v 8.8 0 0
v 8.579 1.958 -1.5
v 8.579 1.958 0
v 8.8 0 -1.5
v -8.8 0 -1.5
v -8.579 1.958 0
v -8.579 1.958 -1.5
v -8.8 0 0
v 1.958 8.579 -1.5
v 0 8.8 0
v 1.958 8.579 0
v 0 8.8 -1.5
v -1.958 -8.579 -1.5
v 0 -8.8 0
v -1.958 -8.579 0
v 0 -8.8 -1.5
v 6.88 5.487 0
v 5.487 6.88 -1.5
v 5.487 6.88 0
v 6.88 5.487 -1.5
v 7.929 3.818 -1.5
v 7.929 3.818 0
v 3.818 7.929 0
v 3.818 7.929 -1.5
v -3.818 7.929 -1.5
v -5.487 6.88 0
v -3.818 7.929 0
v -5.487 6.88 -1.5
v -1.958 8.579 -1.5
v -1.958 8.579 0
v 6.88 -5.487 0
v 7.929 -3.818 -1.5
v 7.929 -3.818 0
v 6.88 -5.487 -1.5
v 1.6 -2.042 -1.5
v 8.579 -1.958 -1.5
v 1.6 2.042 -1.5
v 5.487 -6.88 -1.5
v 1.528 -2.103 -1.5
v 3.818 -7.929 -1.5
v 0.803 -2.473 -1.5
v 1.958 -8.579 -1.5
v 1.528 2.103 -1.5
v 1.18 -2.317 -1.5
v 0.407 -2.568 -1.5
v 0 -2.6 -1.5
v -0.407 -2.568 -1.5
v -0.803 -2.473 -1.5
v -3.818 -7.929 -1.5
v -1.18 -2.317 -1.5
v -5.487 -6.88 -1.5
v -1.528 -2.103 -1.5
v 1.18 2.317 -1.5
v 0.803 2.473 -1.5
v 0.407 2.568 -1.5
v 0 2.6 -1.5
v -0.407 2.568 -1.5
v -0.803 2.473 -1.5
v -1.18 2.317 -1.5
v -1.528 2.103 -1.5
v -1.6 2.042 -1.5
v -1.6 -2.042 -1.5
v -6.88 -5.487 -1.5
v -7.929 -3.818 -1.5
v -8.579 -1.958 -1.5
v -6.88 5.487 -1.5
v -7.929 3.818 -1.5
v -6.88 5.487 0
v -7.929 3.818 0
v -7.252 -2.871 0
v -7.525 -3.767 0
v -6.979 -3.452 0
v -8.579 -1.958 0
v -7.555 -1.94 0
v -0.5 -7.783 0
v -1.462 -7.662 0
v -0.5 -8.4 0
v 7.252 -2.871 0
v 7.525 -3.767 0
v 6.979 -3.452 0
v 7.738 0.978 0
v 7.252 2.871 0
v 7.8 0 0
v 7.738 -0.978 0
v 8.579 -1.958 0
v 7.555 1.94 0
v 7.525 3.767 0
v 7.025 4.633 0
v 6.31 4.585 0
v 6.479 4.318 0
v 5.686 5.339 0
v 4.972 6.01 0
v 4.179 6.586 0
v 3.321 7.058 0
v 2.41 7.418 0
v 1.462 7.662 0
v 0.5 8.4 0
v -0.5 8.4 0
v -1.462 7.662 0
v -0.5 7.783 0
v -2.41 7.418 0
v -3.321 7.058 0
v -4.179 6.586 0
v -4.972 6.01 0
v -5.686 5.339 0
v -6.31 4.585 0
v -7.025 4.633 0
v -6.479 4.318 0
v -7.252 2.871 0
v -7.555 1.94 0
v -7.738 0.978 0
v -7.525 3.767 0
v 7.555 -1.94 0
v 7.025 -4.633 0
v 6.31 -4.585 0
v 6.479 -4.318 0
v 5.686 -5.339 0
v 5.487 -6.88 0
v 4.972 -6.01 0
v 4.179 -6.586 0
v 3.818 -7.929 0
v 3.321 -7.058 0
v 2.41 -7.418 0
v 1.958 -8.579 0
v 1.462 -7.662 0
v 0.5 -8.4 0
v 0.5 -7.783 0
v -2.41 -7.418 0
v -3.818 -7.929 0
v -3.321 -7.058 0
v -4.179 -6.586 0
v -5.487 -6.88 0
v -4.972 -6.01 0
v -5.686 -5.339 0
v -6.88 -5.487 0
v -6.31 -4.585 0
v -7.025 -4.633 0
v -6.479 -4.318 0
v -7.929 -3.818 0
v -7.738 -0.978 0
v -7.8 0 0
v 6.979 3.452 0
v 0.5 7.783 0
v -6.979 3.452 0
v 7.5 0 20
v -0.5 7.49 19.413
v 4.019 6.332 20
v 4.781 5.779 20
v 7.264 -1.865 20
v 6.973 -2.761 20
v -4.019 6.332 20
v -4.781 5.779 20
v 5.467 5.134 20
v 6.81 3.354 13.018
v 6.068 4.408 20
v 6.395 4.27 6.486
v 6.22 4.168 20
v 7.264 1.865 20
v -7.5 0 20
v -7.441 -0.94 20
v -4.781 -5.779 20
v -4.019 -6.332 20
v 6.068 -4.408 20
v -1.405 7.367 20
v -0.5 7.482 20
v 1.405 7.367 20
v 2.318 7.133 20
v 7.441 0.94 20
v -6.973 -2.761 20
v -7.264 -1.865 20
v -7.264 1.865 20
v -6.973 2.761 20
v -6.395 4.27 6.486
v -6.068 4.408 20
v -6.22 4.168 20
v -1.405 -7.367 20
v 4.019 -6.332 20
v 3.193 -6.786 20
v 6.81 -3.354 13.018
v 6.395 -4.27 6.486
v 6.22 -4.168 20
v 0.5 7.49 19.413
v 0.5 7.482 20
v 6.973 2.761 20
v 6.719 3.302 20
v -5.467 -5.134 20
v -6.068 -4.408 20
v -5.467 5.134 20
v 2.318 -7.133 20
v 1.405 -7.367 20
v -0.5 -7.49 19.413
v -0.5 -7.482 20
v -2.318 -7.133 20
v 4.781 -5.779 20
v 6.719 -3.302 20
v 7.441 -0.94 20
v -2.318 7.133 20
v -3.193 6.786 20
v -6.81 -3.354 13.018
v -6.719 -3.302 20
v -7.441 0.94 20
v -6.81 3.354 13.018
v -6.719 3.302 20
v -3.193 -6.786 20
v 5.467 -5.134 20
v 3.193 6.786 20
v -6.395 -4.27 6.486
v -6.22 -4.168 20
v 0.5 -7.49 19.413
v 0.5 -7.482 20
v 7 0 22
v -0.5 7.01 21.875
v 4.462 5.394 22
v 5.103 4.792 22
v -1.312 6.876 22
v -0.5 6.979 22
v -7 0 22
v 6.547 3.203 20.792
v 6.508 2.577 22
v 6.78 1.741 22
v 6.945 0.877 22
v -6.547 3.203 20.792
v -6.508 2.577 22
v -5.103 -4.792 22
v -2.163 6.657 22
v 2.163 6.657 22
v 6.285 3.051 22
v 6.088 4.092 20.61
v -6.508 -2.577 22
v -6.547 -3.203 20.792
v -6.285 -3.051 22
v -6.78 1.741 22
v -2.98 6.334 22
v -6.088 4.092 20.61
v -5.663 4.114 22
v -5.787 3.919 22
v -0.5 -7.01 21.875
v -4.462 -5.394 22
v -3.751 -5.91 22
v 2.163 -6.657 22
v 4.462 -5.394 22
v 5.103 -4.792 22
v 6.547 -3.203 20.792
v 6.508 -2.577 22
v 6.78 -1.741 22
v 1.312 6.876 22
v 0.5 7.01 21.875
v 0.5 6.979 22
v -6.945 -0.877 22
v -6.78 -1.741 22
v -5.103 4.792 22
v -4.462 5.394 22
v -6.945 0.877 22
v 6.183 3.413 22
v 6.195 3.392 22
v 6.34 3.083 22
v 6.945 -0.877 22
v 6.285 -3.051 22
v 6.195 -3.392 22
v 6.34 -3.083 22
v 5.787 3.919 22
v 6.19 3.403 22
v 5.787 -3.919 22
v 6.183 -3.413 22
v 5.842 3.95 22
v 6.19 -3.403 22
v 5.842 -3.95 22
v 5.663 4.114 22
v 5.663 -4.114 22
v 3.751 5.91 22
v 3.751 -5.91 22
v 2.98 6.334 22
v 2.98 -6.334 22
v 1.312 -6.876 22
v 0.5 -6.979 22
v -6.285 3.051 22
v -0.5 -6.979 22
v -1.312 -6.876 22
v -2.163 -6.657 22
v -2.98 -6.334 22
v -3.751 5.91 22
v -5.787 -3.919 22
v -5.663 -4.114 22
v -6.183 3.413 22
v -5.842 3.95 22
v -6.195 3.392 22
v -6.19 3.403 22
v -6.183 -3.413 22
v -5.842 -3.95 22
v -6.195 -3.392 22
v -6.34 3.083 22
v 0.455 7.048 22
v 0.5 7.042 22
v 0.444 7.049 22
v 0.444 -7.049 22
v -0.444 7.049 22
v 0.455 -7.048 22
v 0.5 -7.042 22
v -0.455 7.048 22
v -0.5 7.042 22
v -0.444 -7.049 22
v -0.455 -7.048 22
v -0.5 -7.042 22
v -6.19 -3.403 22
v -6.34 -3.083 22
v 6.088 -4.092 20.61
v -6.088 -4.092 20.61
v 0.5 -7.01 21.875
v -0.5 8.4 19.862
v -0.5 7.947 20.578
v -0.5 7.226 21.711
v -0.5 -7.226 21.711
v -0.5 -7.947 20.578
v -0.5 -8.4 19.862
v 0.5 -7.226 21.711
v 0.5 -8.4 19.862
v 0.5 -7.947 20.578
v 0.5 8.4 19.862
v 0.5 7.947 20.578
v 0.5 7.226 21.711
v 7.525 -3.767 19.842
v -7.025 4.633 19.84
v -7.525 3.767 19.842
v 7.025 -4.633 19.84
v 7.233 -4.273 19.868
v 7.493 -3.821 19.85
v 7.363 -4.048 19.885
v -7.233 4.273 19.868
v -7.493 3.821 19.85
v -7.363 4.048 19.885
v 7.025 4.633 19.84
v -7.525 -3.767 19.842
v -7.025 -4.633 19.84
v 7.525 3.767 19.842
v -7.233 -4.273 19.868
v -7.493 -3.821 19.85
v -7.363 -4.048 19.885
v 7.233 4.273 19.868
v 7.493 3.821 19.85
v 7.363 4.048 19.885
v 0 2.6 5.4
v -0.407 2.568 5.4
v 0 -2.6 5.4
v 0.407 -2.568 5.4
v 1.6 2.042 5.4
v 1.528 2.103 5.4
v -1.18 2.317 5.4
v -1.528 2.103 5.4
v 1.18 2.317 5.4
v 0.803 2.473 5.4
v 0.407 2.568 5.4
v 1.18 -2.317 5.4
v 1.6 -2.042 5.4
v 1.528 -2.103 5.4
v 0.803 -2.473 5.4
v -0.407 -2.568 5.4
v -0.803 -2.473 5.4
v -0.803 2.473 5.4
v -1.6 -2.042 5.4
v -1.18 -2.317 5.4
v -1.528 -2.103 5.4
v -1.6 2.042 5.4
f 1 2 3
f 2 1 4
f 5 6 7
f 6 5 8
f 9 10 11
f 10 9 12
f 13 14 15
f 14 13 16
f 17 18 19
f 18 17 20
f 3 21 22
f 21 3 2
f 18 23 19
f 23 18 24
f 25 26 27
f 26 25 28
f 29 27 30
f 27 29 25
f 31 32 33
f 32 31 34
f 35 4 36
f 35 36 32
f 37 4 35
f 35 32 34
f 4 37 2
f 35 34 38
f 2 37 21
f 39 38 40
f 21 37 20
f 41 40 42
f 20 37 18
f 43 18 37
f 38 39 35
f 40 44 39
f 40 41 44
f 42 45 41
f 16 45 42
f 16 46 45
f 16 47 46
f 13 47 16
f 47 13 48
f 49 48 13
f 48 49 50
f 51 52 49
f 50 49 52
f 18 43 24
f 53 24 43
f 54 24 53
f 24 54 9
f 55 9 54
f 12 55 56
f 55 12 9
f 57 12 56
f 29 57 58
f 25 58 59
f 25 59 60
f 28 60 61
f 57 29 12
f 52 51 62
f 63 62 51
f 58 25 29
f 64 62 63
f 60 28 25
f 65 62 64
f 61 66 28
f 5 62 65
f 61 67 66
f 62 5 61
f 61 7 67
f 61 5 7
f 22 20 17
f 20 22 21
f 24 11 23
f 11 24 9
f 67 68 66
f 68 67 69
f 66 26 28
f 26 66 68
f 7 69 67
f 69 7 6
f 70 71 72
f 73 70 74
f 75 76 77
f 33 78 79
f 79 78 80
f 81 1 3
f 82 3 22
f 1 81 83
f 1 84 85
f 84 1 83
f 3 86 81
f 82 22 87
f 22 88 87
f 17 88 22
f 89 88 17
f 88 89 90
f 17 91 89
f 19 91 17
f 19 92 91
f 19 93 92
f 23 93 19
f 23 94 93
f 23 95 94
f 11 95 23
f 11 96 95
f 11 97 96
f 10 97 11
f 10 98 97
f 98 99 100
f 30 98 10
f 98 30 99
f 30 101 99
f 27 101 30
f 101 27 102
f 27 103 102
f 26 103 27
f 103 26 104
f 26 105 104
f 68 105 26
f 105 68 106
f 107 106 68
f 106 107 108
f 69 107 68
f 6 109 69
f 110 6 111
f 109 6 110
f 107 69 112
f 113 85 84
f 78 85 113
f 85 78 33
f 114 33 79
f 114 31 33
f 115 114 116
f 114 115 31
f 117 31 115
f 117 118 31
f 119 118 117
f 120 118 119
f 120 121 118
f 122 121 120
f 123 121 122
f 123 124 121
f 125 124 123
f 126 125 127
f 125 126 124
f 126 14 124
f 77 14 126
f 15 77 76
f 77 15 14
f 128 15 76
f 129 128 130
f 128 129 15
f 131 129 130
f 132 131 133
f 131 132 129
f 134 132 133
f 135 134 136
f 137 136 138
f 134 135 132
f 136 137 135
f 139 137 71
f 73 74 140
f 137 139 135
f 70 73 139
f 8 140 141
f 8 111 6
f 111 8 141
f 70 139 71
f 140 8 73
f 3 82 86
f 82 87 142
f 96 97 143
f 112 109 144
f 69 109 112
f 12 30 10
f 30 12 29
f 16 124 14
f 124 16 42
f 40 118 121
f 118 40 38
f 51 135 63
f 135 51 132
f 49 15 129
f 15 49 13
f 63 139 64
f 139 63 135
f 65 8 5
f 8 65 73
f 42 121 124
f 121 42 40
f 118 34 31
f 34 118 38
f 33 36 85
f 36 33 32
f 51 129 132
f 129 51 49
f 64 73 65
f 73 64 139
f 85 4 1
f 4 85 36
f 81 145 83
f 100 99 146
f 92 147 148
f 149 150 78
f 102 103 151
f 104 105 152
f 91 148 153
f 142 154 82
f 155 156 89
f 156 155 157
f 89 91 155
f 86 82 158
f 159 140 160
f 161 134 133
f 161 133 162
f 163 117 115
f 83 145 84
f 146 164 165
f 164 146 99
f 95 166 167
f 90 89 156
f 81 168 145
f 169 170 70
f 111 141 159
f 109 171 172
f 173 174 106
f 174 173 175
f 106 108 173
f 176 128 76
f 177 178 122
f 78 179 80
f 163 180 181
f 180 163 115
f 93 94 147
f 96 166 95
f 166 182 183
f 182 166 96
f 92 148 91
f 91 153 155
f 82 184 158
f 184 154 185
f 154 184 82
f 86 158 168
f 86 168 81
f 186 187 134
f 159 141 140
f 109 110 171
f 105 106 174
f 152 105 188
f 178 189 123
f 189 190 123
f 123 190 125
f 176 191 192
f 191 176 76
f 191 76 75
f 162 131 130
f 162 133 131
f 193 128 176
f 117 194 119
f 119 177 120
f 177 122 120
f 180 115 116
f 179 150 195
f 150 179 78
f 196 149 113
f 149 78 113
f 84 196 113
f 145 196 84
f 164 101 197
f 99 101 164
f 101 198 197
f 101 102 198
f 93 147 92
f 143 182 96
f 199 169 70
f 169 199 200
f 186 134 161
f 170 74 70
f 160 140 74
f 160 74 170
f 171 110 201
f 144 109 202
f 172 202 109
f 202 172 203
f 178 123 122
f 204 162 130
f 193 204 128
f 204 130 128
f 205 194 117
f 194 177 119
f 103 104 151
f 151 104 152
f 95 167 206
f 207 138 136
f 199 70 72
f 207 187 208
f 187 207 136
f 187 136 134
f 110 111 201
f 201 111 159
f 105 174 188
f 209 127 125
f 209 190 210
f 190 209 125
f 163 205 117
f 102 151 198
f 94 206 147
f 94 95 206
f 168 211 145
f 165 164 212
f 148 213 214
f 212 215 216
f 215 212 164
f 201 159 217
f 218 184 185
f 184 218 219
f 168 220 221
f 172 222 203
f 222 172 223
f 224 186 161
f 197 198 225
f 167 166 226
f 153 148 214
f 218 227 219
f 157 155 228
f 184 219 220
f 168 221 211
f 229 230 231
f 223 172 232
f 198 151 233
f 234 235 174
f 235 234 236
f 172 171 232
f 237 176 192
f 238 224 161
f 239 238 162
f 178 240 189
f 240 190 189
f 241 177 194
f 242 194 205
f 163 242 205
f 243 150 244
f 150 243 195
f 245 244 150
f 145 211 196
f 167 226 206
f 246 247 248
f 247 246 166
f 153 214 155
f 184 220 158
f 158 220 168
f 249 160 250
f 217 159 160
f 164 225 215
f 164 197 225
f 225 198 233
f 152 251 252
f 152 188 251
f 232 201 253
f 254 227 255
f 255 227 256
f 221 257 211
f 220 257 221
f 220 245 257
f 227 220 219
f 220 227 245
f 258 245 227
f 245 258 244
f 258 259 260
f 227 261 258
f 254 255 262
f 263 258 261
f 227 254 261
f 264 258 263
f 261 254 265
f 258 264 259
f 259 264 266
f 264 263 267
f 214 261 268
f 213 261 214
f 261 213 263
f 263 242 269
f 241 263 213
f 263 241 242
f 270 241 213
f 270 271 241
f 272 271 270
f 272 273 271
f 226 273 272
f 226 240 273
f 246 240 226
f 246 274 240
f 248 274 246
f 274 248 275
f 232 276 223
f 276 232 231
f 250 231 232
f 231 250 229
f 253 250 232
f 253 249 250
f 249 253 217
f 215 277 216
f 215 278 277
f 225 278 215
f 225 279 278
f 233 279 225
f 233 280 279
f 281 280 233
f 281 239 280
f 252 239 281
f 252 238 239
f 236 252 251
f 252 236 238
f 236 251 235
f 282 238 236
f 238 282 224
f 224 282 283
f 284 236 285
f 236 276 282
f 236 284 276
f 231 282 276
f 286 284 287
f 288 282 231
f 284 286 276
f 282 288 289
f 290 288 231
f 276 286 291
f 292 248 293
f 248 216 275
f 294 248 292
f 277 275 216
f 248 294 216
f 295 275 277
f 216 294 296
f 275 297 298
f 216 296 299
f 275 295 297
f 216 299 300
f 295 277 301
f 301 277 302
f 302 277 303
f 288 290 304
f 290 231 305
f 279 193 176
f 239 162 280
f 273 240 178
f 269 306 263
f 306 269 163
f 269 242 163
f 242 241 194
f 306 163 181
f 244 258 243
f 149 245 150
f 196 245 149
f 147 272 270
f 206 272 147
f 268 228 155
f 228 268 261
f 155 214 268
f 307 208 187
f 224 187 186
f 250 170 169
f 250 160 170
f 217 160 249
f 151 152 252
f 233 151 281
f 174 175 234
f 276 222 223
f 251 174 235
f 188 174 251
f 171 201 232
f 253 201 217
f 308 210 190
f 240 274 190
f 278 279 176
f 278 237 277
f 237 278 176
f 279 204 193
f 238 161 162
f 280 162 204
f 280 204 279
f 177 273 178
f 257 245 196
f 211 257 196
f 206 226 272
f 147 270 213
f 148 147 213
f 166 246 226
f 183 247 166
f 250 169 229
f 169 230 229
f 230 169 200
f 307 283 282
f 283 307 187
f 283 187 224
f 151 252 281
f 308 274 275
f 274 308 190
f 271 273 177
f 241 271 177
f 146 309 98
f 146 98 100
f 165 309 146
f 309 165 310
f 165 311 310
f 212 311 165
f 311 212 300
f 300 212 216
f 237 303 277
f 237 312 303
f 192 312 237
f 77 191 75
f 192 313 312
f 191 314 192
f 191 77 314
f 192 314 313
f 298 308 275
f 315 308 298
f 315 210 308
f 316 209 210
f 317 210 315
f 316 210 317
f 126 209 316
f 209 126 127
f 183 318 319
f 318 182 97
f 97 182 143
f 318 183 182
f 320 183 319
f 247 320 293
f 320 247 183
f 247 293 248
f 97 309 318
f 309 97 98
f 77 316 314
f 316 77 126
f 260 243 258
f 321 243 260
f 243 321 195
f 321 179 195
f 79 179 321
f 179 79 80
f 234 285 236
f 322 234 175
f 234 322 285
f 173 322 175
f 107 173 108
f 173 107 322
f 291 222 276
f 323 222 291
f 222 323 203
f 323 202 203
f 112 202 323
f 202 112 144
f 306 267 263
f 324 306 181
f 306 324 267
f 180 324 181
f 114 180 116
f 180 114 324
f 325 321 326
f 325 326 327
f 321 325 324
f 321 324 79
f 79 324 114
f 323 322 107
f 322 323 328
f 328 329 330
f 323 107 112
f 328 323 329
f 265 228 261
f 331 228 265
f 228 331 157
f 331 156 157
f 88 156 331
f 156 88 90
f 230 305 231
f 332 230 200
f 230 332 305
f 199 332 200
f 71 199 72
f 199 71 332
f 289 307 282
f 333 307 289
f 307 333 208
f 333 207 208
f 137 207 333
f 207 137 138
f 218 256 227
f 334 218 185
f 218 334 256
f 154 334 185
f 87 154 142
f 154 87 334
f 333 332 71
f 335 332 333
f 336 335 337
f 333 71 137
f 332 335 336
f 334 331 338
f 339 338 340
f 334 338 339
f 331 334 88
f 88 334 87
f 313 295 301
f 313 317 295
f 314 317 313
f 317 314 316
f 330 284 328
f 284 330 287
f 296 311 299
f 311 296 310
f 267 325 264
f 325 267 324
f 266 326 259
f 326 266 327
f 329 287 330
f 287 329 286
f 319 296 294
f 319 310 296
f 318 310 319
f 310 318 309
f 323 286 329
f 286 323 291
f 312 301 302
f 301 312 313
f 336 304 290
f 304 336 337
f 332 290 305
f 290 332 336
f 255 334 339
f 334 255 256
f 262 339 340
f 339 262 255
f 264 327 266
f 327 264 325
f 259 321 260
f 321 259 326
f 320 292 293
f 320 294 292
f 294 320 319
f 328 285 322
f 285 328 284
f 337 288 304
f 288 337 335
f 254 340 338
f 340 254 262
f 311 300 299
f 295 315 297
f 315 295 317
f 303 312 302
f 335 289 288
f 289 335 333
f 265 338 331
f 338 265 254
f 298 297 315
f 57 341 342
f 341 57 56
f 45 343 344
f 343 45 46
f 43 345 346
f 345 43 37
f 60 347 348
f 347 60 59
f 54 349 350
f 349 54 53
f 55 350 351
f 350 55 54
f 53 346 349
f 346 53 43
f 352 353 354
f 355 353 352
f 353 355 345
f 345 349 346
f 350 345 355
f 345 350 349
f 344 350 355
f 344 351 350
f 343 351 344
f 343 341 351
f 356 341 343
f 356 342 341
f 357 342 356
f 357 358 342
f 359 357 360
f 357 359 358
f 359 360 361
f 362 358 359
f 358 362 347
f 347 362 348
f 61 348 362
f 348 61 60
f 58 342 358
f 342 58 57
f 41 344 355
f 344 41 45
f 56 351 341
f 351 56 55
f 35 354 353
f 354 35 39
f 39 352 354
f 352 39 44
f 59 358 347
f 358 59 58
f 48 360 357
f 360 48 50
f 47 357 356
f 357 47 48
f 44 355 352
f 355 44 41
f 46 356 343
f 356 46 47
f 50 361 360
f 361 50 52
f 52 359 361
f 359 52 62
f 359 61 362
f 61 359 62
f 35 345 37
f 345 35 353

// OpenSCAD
d=15.6;
l=22;
cone=2;

// base
bd=d+2;
bl=1.5;

// shaft
sd=5.2;
sw=3.2;
sl=7;

difference()
{
	intersection()
	{
		union()
		{
			translate([0, 0, -bl]) cylinder(h=bl, d=bd);
			translate([0, 0, 0]) cylinder(h=l-cone, d1=d, d2=d-0.6, $fn=50);
			translate([0, 0, l-cone]) cylinder(h=cone, d1=d-0.6, d2=d-0.6-cone/2, $fn=50);

			
			rotate([0, 0,  0]) translate([0, 0, l/2]) cube([1, d+1.2, l], center=true);
			rotate([0, 0, 60]) translate([0, 0, l/2]) cube([1, d+1.2, l], center=true);
			rotate([0, 0,-60]) translate([0, 0, l/2]) cube([1, d+1.2, l], center=true);
		}
		translate([0, 0, -bl-0.1]) cylinder(h=l+bl+0.2, d1=l*2, d2=d-0.6-cone/2, $fn=50);
	}
	intersection()
	{
		translate([0, 0, -bl-0.1]) cylinder(h=sl, d=sd, $fn=40);
		translate([0, 0, sl/2-bl-0.1]) cube([sw, sd, sl], center=true);
	}
}
